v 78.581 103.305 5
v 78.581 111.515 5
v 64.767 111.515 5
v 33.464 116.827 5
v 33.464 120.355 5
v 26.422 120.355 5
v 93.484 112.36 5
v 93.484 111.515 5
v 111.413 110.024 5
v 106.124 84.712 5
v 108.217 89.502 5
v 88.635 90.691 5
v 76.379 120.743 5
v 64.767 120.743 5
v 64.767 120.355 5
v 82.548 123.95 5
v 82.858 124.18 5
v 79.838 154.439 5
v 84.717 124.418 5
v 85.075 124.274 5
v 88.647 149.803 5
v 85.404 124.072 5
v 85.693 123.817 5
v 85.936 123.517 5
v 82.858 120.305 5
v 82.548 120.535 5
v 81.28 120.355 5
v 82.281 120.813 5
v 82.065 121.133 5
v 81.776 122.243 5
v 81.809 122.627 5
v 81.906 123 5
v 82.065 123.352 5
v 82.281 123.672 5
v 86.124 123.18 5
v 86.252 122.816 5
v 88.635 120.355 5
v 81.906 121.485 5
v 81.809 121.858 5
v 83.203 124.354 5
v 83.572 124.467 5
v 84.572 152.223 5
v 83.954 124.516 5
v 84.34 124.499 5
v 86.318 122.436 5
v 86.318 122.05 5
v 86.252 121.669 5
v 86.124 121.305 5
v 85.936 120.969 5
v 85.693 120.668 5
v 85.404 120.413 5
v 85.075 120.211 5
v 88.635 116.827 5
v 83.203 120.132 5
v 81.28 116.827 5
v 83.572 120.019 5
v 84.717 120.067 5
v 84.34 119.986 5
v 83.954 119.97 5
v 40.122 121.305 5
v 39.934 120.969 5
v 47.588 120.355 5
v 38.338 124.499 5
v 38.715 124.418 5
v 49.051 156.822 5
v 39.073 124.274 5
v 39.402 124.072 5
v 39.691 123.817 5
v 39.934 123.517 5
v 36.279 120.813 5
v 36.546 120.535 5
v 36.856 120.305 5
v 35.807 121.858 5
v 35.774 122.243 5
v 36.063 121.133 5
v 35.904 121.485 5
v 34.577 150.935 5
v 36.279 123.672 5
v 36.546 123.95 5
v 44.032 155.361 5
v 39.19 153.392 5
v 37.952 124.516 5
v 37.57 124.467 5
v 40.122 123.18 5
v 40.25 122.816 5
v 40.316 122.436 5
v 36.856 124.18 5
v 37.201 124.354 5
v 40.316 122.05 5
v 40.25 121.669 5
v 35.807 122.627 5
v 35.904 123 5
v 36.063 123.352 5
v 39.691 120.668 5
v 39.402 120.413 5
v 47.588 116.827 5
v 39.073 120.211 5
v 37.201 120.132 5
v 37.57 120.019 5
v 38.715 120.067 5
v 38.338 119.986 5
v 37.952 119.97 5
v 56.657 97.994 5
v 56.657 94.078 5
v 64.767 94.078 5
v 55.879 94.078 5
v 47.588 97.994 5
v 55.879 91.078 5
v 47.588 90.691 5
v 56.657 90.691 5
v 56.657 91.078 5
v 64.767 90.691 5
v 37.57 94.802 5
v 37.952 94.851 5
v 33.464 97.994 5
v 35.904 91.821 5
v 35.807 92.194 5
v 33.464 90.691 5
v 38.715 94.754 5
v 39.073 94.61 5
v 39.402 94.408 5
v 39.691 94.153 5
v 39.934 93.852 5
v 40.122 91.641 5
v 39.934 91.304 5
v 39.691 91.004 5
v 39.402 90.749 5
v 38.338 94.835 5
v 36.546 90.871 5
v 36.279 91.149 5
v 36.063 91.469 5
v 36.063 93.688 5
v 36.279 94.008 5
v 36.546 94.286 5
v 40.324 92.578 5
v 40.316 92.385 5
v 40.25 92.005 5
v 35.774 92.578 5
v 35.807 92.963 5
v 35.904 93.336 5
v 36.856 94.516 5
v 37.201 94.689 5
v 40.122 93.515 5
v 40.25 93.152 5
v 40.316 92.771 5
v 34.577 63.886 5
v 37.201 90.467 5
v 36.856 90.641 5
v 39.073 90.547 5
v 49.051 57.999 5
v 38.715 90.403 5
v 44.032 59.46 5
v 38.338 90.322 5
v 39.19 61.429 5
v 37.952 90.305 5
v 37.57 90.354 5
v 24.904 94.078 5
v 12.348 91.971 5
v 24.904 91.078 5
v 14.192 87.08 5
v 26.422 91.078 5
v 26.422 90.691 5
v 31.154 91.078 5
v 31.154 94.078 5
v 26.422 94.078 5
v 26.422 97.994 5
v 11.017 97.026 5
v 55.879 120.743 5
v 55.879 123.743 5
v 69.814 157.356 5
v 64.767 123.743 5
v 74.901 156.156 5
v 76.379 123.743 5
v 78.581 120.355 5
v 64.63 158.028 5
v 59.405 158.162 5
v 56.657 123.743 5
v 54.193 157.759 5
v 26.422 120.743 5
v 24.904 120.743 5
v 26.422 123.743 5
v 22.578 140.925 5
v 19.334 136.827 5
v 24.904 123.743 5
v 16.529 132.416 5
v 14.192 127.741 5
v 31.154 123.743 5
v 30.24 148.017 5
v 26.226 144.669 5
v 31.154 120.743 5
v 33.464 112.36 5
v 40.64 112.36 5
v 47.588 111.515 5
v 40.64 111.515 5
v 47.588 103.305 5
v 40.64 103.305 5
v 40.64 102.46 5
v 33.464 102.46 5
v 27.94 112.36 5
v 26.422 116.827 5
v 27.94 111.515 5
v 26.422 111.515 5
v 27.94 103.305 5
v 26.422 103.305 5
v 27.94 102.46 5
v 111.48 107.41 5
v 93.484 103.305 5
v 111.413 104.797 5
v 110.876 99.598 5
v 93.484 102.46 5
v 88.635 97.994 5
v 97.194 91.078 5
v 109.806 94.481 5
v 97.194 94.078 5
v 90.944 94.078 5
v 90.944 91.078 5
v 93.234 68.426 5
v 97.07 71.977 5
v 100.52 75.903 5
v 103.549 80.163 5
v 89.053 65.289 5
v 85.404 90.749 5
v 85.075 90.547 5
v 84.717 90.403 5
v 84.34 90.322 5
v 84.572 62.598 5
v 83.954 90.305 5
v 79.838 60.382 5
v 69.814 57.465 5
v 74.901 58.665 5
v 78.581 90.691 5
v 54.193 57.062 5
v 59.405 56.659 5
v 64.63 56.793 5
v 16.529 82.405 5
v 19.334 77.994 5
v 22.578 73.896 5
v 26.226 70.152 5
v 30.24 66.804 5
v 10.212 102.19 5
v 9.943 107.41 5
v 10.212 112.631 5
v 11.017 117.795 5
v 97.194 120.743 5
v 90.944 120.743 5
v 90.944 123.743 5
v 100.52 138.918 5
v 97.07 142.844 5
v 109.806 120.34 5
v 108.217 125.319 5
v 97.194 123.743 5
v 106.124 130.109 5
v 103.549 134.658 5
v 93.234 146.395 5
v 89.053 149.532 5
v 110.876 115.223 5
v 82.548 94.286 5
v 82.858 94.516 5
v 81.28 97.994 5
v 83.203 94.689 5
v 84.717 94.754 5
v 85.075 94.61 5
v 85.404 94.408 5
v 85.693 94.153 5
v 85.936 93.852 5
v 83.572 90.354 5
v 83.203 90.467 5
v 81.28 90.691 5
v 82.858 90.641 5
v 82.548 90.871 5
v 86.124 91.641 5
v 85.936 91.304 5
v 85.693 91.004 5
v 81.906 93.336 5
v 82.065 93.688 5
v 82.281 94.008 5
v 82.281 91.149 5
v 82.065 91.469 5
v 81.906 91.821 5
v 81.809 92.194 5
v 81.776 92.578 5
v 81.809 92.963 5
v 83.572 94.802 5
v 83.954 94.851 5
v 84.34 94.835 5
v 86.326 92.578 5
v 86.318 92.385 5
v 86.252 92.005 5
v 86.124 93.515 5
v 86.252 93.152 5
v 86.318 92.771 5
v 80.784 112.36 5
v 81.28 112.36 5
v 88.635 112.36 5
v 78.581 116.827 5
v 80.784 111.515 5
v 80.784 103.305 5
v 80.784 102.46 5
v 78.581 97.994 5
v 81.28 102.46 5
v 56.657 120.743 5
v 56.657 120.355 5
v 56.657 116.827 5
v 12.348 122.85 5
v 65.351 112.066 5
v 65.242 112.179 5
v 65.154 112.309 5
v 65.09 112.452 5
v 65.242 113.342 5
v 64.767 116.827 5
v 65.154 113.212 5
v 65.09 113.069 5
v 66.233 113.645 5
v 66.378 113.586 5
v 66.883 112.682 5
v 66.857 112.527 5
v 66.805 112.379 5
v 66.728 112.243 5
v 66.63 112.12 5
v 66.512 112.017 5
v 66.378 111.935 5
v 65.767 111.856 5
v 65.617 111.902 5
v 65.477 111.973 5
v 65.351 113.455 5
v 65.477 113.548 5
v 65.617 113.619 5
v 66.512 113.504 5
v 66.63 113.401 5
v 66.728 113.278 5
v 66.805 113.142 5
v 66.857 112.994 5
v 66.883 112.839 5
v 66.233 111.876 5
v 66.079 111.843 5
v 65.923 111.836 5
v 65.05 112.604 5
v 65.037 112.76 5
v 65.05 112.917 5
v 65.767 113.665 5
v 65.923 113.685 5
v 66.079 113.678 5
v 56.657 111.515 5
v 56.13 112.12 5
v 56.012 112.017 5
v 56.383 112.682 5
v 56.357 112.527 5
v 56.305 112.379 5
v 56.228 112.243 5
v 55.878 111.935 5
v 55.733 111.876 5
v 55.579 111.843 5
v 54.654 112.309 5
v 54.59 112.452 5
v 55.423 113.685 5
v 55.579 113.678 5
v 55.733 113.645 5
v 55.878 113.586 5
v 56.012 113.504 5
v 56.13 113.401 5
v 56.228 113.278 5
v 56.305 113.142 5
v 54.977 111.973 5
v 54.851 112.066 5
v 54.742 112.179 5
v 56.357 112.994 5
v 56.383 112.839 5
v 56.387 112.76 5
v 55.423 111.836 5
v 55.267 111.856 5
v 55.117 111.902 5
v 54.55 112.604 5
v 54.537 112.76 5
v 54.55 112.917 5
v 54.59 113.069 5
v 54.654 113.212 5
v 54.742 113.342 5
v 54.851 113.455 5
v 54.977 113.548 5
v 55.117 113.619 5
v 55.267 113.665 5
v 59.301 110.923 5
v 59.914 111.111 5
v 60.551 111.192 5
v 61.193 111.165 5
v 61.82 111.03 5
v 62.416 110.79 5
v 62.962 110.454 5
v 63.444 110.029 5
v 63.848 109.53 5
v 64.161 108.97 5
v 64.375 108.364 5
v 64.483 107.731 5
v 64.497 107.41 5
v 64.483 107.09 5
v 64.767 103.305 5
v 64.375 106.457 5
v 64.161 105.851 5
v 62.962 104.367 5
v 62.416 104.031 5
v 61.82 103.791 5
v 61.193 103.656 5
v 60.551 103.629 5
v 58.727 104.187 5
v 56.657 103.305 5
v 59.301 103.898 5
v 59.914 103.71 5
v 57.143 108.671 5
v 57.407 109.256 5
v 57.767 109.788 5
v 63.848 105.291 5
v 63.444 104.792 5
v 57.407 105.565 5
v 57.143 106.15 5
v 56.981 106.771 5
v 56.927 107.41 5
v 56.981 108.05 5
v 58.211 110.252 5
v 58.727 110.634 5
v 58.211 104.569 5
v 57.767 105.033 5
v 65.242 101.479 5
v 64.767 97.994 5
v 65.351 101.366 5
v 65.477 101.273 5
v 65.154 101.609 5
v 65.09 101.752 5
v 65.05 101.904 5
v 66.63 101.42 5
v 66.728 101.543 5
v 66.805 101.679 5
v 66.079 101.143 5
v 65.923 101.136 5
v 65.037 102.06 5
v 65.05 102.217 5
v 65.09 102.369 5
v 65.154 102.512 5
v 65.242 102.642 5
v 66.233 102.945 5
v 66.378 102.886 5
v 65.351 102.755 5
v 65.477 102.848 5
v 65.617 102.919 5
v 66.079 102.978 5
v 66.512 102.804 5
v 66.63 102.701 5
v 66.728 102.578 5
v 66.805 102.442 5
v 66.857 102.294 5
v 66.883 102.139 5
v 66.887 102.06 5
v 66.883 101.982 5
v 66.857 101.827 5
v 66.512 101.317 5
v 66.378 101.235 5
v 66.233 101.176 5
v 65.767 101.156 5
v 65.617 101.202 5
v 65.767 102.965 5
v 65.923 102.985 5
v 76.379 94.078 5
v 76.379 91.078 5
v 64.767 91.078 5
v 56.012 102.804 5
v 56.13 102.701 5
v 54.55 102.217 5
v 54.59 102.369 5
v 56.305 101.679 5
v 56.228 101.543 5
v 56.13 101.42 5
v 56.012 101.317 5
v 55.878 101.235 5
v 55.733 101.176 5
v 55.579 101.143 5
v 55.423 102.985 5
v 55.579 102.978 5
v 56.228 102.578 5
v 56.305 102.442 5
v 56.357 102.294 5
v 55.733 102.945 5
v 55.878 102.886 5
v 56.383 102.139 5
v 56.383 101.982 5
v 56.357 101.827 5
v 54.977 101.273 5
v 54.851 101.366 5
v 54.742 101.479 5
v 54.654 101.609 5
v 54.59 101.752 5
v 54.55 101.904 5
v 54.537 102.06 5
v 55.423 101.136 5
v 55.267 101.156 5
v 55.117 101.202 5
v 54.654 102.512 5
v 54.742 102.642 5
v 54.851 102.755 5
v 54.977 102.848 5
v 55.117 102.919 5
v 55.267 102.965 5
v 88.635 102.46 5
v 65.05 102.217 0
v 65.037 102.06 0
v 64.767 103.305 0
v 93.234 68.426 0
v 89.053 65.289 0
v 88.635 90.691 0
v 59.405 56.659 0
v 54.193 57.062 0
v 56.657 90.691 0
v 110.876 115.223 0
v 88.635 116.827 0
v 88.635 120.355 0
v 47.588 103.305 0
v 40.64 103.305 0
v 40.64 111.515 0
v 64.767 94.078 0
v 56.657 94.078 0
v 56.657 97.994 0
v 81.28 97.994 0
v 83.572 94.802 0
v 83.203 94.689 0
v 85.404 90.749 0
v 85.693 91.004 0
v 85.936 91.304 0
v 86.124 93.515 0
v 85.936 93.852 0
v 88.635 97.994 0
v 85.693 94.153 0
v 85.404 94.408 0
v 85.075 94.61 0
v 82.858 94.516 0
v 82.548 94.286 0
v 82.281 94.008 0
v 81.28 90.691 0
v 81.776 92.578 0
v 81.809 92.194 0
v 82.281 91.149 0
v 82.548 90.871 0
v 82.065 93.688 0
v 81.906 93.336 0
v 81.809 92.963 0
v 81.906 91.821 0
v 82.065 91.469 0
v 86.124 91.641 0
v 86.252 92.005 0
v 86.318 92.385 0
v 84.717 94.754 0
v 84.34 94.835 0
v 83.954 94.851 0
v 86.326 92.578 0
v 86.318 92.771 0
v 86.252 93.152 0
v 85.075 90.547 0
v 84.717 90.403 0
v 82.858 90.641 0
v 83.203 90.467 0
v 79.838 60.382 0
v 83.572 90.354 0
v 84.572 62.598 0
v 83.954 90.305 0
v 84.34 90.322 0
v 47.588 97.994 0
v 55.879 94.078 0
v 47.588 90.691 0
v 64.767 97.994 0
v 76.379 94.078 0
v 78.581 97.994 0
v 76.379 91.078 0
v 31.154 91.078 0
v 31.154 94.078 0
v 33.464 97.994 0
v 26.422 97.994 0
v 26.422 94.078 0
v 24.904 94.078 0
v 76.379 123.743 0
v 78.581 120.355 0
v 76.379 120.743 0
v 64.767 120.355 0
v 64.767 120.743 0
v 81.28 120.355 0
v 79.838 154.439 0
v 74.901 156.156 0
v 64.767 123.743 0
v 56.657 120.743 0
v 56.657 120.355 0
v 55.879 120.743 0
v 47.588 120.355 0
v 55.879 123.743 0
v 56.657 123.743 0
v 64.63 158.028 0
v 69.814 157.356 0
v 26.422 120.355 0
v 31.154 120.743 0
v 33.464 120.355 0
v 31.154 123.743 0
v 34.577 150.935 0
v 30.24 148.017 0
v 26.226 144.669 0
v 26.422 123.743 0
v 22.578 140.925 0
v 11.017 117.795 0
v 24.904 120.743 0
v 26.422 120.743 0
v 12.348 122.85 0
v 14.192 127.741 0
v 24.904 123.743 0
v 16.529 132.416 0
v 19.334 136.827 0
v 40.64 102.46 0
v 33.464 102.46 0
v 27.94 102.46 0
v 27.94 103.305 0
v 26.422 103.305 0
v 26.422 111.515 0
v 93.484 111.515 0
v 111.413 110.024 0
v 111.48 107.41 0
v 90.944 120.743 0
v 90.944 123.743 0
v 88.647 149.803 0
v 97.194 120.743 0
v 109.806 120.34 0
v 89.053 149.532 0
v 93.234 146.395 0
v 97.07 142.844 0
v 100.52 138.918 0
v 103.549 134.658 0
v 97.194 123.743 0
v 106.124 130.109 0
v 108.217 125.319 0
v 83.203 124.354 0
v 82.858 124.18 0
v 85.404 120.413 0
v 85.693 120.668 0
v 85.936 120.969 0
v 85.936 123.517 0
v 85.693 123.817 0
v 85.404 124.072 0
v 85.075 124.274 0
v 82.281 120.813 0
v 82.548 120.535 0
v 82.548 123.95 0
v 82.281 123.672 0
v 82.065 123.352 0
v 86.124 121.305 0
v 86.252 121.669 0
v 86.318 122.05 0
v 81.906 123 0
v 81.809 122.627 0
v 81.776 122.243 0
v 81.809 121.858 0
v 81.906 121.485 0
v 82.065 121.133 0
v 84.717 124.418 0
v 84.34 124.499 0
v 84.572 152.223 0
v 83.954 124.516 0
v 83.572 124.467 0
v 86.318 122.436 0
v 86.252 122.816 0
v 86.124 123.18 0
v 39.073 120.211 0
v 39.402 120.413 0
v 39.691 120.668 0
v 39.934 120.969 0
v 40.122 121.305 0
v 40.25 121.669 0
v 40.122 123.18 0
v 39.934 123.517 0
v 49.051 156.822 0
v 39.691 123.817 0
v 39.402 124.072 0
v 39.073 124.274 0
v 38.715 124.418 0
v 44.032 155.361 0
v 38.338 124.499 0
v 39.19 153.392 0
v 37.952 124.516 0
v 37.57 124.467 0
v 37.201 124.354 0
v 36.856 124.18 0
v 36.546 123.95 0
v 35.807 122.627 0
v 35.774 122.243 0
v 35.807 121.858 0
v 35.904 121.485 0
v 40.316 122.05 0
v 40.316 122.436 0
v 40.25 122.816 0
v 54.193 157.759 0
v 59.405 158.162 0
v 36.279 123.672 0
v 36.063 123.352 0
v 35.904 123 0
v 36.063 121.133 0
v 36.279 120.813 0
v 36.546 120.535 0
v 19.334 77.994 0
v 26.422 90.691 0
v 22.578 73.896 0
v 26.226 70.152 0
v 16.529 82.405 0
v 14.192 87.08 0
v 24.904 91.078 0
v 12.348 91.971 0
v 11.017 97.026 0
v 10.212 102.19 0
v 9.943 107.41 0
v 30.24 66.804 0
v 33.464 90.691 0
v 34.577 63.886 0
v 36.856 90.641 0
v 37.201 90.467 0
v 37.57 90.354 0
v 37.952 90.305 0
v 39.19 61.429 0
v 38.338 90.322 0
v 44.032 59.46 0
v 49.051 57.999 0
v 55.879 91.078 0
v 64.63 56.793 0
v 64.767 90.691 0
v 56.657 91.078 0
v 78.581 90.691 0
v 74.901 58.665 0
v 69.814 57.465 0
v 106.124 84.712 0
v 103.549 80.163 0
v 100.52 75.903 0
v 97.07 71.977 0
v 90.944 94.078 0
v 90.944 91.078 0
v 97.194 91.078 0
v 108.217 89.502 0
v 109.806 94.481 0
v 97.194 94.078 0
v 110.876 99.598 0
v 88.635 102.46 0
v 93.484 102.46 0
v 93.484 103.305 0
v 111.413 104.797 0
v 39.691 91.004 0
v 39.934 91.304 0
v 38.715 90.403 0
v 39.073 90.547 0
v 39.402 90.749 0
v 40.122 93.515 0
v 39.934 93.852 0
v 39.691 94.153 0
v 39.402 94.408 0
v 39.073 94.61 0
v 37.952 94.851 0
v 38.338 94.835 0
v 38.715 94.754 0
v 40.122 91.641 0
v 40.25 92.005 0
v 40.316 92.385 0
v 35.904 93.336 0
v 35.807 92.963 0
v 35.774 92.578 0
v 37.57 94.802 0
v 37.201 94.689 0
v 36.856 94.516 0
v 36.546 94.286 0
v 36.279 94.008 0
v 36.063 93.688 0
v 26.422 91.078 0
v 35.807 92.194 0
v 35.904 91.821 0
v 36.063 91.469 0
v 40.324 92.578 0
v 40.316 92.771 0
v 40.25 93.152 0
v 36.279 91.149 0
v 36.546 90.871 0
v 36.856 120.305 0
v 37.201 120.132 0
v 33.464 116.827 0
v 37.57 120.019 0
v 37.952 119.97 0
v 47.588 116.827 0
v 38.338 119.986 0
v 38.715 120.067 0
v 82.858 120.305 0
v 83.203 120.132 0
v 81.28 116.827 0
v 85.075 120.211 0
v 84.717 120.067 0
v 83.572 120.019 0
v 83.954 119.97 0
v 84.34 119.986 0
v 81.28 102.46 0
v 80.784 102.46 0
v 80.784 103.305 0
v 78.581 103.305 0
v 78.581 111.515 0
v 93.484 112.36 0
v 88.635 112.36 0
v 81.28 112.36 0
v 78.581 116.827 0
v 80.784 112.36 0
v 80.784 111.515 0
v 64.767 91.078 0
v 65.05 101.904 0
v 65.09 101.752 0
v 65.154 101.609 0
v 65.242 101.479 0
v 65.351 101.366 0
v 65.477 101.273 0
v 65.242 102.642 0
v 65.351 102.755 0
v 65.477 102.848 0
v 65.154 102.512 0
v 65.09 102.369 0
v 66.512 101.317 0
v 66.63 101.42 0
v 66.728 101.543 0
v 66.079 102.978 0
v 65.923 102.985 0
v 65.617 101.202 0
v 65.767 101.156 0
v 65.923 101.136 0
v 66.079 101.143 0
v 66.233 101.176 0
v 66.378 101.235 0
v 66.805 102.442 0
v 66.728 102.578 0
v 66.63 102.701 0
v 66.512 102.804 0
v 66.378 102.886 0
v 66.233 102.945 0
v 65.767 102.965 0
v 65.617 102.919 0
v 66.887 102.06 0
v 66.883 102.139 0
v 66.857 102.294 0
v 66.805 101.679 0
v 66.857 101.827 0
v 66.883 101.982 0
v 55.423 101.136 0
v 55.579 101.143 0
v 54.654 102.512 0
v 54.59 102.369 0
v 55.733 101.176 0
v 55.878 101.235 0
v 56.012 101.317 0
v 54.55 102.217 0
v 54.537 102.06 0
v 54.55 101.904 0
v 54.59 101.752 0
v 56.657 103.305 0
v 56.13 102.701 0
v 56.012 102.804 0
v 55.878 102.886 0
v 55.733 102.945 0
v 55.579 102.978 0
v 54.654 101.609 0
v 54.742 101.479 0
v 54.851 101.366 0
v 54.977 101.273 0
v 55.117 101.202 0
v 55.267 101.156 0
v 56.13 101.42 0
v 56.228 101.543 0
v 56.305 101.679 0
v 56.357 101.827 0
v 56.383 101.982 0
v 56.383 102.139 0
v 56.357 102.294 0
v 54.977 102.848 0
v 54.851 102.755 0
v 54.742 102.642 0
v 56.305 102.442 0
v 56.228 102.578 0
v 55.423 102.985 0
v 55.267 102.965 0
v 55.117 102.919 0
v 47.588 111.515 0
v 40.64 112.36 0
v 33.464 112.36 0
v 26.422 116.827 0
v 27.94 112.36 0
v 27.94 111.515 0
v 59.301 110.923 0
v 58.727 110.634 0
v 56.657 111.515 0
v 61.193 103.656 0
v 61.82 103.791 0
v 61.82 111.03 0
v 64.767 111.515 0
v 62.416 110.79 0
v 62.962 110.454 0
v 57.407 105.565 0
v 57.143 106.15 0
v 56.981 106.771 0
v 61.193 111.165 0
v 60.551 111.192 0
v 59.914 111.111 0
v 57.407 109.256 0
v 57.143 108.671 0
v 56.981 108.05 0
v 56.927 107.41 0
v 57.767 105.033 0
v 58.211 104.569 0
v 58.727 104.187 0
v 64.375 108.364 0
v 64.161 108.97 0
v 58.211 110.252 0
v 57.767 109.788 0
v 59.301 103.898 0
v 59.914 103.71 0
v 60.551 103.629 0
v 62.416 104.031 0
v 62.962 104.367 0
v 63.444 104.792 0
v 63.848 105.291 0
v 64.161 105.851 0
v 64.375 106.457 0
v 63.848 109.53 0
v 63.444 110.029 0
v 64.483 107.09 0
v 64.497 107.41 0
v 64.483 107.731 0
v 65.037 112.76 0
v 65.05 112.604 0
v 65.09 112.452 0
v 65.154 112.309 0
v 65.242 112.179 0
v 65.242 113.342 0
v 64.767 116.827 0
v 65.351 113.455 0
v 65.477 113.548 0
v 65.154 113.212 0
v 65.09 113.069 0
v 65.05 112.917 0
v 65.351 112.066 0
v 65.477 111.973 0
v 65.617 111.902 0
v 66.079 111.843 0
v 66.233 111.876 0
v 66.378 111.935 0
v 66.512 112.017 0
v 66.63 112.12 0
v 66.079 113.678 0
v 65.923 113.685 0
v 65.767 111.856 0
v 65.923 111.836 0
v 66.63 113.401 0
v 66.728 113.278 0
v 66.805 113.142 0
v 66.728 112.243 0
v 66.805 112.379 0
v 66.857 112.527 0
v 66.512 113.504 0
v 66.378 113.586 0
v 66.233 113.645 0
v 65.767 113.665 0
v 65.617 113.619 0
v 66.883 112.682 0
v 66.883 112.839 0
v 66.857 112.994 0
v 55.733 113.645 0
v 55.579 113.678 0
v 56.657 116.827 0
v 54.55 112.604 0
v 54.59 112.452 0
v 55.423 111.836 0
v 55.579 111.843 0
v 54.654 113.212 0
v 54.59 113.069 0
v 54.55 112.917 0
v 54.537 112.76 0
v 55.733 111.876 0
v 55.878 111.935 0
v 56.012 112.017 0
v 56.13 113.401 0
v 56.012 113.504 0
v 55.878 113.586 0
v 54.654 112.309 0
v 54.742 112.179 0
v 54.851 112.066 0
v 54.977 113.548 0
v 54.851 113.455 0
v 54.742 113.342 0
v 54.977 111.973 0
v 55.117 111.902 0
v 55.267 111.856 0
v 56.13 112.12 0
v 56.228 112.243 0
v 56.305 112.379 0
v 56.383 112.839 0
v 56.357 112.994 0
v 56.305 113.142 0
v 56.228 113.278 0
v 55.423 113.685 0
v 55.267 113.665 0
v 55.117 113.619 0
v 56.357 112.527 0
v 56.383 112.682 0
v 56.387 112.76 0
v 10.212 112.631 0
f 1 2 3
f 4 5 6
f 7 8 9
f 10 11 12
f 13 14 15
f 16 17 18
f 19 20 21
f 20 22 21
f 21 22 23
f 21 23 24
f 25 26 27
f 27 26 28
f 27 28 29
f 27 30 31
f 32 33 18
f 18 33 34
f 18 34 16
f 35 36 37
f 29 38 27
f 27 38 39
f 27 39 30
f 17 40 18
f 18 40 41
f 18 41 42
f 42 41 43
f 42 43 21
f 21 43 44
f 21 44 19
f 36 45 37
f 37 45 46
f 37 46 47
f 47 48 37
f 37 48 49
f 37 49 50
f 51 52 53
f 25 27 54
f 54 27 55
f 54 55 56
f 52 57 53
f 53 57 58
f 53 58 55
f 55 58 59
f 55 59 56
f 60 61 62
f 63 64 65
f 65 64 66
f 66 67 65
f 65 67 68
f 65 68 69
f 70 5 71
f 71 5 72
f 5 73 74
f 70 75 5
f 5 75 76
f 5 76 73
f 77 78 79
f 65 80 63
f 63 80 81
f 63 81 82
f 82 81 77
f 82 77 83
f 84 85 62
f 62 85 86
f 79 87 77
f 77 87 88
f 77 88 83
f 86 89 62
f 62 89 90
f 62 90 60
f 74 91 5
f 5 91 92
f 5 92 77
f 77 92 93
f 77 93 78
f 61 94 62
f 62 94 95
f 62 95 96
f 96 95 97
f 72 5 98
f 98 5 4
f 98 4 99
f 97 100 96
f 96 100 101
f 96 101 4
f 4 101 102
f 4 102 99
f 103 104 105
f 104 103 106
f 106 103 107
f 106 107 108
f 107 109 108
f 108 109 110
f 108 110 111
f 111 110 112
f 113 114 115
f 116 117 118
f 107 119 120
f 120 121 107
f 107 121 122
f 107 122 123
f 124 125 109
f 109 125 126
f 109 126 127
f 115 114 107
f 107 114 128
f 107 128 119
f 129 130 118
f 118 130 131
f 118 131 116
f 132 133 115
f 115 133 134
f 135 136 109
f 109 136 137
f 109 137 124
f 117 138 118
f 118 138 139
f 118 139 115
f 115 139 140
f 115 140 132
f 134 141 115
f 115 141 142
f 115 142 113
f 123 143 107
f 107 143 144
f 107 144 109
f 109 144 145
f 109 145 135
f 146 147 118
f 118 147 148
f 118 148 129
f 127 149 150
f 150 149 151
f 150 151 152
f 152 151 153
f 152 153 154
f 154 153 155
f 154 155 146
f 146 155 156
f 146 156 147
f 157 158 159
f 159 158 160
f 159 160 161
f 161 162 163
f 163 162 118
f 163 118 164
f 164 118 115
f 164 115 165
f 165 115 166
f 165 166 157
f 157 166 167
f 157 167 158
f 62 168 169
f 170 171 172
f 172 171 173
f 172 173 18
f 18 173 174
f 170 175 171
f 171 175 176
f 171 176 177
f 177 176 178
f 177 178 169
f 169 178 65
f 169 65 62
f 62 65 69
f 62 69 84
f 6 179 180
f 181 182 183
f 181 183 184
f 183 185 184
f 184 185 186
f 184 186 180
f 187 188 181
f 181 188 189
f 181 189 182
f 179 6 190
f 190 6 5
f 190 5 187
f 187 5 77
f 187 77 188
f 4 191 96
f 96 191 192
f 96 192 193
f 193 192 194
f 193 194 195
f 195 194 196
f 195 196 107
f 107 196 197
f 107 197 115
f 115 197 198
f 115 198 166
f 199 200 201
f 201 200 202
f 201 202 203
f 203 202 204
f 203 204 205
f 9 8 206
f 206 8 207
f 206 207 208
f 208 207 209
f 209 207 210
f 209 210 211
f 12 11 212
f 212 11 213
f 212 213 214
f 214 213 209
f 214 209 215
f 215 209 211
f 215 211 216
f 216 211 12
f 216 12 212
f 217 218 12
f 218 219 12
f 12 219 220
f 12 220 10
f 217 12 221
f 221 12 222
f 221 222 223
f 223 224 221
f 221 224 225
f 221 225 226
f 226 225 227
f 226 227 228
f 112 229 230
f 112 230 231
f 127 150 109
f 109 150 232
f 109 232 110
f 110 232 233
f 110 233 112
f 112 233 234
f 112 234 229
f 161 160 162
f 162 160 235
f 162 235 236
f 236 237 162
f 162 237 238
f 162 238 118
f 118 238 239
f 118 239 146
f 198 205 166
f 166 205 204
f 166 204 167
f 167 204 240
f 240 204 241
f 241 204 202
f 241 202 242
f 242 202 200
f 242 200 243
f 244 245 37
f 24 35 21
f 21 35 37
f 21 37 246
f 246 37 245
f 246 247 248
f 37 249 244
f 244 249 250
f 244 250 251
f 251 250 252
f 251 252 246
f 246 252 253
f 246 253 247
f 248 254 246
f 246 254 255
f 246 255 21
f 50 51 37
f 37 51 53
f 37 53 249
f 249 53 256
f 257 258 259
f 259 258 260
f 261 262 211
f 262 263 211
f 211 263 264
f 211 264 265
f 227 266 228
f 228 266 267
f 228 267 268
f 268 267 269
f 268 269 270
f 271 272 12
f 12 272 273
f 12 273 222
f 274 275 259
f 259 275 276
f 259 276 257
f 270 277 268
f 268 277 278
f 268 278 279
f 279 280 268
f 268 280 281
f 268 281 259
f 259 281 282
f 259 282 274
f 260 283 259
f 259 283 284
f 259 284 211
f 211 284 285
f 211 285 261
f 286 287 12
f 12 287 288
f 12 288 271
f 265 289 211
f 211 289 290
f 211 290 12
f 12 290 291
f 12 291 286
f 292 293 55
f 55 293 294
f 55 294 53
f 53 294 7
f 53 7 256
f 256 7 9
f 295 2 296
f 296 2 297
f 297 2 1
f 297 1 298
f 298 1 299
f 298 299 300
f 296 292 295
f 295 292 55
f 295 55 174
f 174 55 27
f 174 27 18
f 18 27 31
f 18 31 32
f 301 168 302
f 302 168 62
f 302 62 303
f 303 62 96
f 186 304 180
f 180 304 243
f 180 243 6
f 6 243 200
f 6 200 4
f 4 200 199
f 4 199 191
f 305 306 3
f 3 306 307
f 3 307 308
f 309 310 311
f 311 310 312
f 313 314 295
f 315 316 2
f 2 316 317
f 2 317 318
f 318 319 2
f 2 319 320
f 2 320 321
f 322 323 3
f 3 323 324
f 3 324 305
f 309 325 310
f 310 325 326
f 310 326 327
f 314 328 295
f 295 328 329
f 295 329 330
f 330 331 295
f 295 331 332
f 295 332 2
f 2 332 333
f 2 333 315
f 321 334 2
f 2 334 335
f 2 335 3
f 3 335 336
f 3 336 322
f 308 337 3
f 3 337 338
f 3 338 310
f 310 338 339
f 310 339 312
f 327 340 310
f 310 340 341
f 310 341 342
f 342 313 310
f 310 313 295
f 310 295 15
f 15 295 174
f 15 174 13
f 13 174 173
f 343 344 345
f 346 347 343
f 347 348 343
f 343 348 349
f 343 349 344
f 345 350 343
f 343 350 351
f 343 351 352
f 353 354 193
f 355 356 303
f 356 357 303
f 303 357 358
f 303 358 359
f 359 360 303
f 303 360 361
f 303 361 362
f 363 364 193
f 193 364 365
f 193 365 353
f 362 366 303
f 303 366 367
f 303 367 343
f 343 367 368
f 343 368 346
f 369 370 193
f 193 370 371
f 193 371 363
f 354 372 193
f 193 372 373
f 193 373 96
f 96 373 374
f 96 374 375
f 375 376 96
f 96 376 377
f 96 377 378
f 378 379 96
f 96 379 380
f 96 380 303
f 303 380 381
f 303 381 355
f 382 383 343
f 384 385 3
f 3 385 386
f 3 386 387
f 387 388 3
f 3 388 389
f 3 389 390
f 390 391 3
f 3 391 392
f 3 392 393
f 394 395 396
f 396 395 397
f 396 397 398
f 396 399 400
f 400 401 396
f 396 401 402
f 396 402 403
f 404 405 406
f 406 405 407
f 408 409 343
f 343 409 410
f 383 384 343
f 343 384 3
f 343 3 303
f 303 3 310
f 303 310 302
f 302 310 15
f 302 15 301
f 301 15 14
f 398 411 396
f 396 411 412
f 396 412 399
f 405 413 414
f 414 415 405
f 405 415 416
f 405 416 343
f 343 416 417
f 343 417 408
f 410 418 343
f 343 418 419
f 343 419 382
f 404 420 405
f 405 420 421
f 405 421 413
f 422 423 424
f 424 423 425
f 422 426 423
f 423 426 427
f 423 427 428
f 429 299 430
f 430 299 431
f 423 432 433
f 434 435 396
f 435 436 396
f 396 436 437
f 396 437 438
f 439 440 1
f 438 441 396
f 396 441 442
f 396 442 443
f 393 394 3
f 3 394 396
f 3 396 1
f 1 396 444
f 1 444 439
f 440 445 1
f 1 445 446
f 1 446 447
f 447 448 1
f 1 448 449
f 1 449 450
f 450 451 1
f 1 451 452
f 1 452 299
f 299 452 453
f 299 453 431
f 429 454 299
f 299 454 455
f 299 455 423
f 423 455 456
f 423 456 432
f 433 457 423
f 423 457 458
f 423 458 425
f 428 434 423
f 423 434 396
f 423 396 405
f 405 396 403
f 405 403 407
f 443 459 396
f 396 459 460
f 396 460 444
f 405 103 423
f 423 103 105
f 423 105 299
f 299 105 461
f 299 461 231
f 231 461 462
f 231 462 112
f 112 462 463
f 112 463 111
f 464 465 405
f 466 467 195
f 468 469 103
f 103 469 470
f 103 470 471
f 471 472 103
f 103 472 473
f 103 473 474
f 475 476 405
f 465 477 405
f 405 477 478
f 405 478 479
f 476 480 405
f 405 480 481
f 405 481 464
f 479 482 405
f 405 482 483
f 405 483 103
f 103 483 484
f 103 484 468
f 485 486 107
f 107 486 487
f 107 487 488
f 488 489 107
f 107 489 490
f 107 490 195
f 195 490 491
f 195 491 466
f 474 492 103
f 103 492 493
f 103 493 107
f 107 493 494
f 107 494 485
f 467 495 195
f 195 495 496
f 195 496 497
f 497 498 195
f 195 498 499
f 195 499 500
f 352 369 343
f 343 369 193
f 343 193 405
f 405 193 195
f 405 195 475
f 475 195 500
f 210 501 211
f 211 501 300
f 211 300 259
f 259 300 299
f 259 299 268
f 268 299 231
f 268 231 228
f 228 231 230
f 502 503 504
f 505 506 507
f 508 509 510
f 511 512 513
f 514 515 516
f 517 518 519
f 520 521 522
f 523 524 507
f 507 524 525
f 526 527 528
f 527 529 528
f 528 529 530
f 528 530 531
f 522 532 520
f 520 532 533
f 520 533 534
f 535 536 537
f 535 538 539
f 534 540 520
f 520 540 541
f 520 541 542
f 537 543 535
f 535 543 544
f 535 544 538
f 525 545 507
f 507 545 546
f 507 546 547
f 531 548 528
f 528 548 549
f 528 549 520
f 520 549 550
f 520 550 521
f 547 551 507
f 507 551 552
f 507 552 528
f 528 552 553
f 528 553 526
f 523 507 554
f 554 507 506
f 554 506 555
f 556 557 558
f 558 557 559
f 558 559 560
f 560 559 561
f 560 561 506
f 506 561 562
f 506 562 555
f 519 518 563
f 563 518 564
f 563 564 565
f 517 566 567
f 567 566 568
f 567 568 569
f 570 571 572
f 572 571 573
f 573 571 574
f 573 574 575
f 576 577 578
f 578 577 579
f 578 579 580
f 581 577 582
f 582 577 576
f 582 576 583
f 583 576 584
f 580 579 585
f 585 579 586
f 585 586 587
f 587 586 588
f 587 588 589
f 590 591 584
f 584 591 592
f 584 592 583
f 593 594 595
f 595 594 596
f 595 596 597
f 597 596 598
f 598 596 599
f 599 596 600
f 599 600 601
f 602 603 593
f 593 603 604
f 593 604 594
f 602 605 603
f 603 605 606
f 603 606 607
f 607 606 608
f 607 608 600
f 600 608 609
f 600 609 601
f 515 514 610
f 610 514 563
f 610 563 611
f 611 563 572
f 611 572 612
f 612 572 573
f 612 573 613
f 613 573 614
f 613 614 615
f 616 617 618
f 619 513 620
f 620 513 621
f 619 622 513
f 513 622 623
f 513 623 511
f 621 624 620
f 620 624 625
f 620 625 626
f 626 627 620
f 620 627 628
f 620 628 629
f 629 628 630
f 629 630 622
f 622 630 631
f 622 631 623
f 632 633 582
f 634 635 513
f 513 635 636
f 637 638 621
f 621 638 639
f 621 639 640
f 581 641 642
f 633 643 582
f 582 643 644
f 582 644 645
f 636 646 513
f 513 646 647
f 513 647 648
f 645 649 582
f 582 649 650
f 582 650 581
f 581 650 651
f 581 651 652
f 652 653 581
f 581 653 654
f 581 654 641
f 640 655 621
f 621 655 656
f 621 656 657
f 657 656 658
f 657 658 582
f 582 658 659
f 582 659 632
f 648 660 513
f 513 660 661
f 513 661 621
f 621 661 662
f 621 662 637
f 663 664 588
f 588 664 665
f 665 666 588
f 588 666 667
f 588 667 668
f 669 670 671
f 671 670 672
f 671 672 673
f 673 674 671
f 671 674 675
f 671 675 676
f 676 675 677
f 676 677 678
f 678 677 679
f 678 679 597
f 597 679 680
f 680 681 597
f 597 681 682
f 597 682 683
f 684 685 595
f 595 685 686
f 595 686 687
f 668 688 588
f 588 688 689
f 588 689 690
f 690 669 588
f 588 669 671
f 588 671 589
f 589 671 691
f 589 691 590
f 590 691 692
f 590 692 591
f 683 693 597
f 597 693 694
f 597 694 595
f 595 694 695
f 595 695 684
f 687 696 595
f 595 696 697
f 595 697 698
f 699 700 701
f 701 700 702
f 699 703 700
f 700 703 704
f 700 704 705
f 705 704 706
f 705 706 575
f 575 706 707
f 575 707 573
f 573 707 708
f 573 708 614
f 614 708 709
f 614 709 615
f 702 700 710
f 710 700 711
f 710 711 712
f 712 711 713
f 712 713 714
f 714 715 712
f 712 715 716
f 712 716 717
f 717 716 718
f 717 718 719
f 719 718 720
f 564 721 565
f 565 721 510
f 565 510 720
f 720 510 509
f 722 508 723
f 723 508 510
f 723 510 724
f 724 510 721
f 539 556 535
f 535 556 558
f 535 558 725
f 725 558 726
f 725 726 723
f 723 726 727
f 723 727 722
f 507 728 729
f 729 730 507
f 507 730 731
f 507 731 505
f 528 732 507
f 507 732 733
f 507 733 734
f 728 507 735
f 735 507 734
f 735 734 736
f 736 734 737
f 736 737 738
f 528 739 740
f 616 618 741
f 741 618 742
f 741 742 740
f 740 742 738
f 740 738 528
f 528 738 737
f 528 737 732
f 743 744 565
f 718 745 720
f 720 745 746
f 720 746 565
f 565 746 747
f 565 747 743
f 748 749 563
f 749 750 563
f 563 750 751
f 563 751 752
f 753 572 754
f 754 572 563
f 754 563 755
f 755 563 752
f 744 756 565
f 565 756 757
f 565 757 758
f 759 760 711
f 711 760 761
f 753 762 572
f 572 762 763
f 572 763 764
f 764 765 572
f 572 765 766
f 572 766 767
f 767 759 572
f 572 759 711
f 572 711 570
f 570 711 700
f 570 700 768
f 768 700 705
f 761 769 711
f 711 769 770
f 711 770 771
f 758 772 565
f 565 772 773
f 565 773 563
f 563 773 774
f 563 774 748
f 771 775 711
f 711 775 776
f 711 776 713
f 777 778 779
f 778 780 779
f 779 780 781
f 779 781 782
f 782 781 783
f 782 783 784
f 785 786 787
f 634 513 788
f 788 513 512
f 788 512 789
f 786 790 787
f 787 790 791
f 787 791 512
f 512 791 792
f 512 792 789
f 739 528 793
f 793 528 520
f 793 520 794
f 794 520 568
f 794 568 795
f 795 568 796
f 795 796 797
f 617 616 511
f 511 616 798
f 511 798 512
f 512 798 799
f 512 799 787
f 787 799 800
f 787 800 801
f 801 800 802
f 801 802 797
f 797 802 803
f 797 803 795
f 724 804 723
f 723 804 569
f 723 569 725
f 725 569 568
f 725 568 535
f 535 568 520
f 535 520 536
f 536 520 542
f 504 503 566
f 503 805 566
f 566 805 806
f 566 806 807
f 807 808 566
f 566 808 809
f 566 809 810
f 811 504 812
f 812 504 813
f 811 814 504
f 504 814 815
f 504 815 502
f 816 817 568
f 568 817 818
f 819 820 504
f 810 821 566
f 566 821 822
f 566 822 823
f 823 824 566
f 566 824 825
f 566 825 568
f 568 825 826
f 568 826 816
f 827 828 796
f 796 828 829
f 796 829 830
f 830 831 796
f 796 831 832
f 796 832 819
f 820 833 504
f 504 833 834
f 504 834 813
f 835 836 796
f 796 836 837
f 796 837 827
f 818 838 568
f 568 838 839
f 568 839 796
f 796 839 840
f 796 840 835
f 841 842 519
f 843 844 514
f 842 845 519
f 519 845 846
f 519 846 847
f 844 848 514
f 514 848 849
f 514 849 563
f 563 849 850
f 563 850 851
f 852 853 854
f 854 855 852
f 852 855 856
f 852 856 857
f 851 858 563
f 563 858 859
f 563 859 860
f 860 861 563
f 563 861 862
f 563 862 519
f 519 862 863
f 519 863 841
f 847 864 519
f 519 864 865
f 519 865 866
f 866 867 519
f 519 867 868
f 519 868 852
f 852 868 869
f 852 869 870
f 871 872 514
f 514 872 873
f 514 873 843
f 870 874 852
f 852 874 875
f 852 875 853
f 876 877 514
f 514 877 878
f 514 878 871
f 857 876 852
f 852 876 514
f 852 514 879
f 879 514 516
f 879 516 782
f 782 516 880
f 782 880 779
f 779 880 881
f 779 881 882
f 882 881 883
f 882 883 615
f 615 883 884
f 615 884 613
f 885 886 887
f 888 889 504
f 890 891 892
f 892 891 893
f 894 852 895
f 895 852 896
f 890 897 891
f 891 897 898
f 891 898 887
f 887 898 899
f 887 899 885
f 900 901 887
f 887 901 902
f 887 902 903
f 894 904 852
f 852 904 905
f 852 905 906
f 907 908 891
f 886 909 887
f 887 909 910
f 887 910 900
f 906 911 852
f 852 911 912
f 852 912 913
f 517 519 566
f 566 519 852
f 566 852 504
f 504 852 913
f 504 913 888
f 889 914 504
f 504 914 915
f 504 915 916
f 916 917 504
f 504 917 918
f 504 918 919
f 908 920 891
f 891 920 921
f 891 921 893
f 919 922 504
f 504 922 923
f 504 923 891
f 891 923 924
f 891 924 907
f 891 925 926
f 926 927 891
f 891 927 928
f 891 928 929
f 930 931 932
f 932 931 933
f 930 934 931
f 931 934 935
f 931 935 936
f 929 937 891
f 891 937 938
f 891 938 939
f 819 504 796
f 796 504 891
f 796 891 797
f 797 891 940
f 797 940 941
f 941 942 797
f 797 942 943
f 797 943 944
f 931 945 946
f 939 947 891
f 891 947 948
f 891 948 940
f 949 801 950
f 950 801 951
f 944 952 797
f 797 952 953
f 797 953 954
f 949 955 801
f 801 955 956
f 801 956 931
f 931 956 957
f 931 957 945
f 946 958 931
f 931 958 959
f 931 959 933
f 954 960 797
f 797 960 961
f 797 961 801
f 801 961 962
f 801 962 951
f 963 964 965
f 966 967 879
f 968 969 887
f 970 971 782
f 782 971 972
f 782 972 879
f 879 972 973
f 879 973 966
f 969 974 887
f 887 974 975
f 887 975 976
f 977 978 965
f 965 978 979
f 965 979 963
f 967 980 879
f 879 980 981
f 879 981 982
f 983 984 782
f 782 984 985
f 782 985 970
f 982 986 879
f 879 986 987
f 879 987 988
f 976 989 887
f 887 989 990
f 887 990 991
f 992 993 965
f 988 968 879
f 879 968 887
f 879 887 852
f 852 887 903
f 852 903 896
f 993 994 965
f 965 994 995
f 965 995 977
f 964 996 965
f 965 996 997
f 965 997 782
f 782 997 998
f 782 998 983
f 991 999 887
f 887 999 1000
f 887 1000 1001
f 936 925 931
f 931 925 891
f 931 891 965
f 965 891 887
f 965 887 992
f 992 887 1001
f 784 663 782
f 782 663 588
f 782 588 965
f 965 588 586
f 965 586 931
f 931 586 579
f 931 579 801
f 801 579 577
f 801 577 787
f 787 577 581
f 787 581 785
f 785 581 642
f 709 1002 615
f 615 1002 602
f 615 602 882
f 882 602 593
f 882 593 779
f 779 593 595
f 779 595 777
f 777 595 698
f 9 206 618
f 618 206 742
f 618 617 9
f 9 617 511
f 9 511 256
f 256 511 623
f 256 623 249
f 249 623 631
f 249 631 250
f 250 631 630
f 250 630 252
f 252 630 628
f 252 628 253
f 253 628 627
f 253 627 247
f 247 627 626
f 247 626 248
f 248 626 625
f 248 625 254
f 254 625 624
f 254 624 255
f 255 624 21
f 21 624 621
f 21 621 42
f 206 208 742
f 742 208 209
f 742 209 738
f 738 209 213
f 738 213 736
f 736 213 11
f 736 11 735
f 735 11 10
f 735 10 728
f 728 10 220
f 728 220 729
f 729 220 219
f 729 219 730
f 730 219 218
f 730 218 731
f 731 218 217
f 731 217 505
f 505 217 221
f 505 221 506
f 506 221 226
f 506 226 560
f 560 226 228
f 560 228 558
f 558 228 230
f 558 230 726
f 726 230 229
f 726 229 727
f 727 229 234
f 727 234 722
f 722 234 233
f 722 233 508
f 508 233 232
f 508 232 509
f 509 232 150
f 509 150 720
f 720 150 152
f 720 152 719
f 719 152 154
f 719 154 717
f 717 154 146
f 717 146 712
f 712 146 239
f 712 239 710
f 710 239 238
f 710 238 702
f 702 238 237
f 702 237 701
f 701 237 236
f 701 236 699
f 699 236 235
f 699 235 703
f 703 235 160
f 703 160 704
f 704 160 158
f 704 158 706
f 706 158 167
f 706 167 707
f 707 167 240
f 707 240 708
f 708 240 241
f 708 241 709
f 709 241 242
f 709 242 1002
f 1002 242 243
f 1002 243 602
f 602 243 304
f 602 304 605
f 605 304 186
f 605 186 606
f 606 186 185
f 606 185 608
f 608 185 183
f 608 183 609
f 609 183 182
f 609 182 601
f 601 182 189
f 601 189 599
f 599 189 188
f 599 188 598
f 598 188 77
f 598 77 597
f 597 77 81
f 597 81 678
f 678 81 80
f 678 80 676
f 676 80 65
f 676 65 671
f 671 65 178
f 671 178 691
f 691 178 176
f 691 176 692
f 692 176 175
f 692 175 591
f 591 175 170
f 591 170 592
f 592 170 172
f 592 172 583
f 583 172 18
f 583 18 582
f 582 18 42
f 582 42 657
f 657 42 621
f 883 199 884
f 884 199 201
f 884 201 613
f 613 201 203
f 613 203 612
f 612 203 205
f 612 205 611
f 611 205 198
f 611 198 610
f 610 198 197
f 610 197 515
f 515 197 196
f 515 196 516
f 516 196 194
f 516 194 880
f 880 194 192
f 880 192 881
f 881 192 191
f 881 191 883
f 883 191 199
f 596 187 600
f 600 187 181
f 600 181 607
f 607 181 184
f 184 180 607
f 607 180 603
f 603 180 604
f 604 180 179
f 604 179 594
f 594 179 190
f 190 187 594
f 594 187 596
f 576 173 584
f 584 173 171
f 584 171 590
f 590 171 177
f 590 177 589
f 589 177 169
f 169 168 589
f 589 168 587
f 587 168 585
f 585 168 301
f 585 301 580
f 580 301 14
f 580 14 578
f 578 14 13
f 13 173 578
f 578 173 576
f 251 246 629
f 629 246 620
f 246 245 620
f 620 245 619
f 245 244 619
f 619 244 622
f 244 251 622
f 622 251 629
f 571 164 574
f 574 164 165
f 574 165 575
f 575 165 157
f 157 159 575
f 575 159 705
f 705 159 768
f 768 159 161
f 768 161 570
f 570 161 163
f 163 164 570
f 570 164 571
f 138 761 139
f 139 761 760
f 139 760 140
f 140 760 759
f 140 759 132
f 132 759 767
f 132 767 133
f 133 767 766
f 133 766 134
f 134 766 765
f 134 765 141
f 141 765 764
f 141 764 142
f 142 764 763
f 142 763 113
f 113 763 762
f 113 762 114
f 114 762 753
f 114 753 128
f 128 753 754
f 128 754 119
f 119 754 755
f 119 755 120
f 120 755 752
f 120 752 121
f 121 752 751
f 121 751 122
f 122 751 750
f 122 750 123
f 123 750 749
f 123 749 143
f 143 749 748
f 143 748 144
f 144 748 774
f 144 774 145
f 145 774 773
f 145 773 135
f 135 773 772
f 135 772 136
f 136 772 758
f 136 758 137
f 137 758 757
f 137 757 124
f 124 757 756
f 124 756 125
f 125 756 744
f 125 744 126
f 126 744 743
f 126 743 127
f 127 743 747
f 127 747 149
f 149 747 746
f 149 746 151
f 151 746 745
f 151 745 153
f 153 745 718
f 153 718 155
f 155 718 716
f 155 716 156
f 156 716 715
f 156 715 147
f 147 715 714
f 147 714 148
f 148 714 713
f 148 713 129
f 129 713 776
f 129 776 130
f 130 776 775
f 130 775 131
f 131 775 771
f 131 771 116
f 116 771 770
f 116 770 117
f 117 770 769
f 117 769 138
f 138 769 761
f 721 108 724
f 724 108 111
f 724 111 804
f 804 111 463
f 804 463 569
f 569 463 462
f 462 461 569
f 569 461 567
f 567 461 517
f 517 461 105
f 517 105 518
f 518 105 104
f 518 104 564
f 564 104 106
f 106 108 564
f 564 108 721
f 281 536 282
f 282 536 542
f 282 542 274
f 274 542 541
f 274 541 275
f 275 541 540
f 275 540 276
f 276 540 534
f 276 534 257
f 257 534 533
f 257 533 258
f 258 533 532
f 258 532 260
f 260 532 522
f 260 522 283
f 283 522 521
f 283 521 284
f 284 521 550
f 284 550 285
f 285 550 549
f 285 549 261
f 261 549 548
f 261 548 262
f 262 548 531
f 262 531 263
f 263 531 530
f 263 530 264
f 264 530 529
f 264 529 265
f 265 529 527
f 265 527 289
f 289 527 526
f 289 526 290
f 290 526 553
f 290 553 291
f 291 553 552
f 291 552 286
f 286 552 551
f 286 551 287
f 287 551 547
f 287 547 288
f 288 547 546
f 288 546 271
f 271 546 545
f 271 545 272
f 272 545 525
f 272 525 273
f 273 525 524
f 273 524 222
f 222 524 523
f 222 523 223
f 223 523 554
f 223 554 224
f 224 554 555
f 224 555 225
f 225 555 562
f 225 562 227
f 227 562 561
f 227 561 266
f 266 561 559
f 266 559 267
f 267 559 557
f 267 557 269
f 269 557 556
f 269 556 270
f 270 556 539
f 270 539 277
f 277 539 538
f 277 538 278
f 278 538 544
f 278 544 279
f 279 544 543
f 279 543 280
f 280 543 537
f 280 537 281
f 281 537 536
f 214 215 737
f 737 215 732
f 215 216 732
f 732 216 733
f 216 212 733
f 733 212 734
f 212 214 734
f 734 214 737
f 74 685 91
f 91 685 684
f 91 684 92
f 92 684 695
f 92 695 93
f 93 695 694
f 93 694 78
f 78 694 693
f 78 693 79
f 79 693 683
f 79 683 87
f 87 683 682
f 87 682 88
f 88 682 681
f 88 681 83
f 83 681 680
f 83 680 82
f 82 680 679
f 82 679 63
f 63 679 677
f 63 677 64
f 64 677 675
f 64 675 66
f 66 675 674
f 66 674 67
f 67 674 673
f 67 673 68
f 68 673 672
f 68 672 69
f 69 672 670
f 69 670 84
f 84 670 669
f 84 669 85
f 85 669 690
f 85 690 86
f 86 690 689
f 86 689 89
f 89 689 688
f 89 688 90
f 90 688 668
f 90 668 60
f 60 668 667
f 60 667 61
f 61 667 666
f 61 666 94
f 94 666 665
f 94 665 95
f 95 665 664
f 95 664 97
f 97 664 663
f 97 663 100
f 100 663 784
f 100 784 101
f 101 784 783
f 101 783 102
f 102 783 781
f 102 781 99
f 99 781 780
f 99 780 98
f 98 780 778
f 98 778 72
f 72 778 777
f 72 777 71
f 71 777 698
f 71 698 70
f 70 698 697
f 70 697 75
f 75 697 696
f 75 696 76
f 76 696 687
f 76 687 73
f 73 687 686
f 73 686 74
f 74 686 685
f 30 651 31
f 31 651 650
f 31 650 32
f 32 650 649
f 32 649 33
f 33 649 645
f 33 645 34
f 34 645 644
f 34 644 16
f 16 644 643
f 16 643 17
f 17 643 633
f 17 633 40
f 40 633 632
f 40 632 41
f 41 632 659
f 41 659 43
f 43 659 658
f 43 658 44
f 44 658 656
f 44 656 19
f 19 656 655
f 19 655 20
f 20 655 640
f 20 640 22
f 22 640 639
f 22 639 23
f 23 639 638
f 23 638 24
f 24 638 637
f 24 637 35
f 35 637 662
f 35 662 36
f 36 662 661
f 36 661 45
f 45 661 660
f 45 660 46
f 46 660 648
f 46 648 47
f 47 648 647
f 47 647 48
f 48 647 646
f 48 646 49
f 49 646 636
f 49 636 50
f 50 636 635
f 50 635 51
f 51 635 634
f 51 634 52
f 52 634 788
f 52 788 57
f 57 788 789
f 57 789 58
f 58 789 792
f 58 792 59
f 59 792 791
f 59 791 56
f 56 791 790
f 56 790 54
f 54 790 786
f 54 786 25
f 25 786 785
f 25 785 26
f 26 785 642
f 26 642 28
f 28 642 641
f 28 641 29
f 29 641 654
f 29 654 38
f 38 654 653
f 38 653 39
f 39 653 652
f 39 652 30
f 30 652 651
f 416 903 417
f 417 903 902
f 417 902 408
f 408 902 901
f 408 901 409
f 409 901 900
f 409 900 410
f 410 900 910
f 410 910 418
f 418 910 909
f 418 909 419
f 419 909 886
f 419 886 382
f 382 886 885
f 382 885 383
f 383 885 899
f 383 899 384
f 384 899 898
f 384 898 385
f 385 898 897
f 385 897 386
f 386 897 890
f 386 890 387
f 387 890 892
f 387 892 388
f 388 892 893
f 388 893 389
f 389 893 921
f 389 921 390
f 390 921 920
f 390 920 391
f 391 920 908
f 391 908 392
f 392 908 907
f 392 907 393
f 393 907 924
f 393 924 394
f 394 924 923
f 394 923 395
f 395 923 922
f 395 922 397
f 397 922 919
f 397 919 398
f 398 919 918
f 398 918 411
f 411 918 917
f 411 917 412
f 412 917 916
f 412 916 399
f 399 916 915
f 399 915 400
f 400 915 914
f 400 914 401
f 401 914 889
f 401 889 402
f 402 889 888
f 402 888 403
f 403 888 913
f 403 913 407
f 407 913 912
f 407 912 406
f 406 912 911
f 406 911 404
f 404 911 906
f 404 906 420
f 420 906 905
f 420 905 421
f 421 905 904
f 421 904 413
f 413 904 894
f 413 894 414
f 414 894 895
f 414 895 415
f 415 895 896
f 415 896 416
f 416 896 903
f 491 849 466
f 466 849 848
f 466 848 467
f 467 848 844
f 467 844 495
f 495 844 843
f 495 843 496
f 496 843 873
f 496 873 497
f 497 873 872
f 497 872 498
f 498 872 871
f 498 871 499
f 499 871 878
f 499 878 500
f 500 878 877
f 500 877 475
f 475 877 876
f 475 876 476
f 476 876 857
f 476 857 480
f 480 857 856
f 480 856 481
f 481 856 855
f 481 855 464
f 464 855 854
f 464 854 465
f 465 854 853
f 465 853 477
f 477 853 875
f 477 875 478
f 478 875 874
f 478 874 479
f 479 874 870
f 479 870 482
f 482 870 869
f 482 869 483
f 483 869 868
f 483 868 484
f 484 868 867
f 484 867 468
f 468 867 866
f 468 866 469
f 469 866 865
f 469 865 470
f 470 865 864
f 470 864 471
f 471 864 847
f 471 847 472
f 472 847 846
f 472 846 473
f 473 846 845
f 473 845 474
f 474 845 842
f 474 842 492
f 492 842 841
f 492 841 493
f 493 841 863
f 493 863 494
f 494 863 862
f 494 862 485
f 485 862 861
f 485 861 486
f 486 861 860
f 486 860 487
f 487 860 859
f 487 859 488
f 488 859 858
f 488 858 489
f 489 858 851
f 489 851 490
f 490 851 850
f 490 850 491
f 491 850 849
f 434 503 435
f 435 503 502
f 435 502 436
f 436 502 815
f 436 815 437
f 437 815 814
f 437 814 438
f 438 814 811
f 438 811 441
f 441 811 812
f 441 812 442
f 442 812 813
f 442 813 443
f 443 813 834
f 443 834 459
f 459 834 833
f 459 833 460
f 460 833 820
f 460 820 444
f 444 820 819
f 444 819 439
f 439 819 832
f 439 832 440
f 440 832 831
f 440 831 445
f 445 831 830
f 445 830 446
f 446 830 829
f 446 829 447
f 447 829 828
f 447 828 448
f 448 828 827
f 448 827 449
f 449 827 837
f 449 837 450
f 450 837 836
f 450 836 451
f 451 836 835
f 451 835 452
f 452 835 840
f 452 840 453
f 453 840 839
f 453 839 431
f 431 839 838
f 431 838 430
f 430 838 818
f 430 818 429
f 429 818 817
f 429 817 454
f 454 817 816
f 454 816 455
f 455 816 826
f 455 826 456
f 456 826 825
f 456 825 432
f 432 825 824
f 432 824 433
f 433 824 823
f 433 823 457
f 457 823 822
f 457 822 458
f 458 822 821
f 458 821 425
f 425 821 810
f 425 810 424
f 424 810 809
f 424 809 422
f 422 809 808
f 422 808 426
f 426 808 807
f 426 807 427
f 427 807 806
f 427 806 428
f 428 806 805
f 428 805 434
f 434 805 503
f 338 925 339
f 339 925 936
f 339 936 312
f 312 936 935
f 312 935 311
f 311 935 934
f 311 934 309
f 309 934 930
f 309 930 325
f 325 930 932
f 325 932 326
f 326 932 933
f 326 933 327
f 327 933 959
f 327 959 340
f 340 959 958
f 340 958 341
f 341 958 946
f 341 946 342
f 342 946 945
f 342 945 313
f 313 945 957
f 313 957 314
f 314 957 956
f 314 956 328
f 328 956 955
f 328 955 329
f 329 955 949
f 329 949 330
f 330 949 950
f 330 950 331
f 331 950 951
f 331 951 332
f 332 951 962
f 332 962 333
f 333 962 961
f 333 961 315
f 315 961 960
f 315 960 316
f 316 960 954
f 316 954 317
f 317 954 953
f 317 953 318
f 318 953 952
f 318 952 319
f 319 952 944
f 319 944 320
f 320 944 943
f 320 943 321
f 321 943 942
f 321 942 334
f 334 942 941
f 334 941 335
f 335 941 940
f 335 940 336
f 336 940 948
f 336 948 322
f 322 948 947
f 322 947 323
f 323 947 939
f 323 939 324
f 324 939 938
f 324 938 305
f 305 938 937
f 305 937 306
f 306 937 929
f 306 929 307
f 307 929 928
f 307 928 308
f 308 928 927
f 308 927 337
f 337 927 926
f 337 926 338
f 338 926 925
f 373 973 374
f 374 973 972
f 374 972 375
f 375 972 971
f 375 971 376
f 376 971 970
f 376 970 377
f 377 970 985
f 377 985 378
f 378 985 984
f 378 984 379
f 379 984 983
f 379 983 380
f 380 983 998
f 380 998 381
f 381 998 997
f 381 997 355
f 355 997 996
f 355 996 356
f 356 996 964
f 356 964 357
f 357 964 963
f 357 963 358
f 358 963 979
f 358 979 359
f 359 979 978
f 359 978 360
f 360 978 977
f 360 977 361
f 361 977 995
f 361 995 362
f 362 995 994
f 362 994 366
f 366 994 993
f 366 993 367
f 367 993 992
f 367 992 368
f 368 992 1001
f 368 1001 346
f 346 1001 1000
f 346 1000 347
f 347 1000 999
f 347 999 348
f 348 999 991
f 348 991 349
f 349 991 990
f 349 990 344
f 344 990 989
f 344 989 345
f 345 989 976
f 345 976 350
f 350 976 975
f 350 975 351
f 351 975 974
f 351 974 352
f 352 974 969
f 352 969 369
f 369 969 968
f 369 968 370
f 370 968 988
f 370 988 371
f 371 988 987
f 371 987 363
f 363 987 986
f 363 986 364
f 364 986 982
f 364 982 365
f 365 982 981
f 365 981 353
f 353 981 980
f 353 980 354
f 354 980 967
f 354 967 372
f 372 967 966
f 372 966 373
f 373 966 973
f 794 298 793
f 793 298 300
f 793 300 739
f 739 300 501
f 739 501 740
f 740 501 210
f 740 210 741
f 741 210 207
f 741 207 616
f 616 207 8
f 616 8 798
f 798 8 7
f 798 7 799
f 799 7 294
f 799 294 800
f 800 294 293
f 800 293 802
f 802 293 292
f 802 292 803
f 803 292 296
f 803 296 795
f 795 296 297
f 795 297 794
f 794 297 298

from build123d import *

# Parameters (mm, degrees)
SKETCH3_R           = 50.7685
SKETCH3_R_2         = 3.785
SKETCH3_R_3         = 0.925
SKETCH3_R_4         = 2.275
SKETCH3_W           = 12.7001
SKETCH3_H           = 9.9
SKETCH3_W_2         = 6.25
SKETCH3_H_2         = 3
SKETCH3_W_3         = 20.5
BOSS_EXTRUDE7_DEPTH = 5


with BuildPart() as part:
    # Sketch3 → Boss-Extrude7 (new body)
    with BuildSketch(Plane.XY):
        with Locations((60.71181161, 107.410494733)):
            Circle(SKETCH3_R)
        with Locations((60.71181161, 107.410494733)):
            Circle(SKETCH3_R_2, mode=Mode.SUBTRACT)
        with Locations((65.96181161, 102.060494733)):
            Circle(SKETCH3_R_3, mode=Mode.SUBTRACT)
        with Locations((38.0489, 92.578417091)):
            Circle(SKETCH3_R_4, mode=Mode.SUBTRACT)
        with Locations((84.0509, 92.578417091)):
            Circle(SKETCH3_R_4, mode=Mode.SUBTRACT)
        with Locations((84.0509, 122.242572375)):
            Circle(SKETCH3_R_4, mode=Mode.SUBTRACT)
        with Locations((38.0489, 122.242572375)):
            Circle(SKETCH3_R_4, mode=Mode.SUBTRACT)
        with Locations((55.46181161, 102.060494733)):
            Circle(SKETCH3_R_3, mode=Mode.SUBTRACT)
        with Locations((65.96181161, 112.760494733)):
            Circle(SKETCH3_R_3, mode=Mode.SUBTRACT)
        with Locations((55.46181161, 112.760494733)):
            Circle(SKETCH3_R_3, mode=Mode.SUBTRACT)
        with Locations((34.28955, 107.410494733)):
            Rectangle(SKETCH3_W, SKETCH3_H, mode=Mode.SUBTRACT)
        with Locations((28.0289, 92.578417091)):
            Rectangle(SKETCH3_W_2, SKETCH3_H_2, mode=Mode.SUBTRACT)
        with Locations((66.1289, 92.578417091)):
            Rectangle(SKETCH3_W_3, SKETCH3_H_2, mode=Mode.SUBTRACT)
        with Locations((94.0689, 92.578417091)):
            Rectangle(SKETCH3_W_2, SKETCH3_H_2, mode=Mode.SUBTRACT)
        with Locations((28.0289, 122.242572375)):
            Rectangle(SKETCH3_W_2, SKETCH3_H_2, mode=Mode.SUBTRACT)
        with Locations((66.1289, 122.242572375)):
            Rectangle(SKETCH3_W_3, SKETCH3_H_2, mode=Mode.SUBTRACT)
        with Locations((94.0689, 122.242572375)):
            Rectangle(SKETCH3_W_2, SKETCH3_H_2, mode=Mode.SUBTRACT)
        with Locations((87.13407322, 107.410494733)):
            Rectangle(SKETCH3_W, SKETCH3_H, mode=Mode.SUBTRACT)
    extrude(amount=BOSS_EXTRUDE7_DEPTH)


solid = part.part
